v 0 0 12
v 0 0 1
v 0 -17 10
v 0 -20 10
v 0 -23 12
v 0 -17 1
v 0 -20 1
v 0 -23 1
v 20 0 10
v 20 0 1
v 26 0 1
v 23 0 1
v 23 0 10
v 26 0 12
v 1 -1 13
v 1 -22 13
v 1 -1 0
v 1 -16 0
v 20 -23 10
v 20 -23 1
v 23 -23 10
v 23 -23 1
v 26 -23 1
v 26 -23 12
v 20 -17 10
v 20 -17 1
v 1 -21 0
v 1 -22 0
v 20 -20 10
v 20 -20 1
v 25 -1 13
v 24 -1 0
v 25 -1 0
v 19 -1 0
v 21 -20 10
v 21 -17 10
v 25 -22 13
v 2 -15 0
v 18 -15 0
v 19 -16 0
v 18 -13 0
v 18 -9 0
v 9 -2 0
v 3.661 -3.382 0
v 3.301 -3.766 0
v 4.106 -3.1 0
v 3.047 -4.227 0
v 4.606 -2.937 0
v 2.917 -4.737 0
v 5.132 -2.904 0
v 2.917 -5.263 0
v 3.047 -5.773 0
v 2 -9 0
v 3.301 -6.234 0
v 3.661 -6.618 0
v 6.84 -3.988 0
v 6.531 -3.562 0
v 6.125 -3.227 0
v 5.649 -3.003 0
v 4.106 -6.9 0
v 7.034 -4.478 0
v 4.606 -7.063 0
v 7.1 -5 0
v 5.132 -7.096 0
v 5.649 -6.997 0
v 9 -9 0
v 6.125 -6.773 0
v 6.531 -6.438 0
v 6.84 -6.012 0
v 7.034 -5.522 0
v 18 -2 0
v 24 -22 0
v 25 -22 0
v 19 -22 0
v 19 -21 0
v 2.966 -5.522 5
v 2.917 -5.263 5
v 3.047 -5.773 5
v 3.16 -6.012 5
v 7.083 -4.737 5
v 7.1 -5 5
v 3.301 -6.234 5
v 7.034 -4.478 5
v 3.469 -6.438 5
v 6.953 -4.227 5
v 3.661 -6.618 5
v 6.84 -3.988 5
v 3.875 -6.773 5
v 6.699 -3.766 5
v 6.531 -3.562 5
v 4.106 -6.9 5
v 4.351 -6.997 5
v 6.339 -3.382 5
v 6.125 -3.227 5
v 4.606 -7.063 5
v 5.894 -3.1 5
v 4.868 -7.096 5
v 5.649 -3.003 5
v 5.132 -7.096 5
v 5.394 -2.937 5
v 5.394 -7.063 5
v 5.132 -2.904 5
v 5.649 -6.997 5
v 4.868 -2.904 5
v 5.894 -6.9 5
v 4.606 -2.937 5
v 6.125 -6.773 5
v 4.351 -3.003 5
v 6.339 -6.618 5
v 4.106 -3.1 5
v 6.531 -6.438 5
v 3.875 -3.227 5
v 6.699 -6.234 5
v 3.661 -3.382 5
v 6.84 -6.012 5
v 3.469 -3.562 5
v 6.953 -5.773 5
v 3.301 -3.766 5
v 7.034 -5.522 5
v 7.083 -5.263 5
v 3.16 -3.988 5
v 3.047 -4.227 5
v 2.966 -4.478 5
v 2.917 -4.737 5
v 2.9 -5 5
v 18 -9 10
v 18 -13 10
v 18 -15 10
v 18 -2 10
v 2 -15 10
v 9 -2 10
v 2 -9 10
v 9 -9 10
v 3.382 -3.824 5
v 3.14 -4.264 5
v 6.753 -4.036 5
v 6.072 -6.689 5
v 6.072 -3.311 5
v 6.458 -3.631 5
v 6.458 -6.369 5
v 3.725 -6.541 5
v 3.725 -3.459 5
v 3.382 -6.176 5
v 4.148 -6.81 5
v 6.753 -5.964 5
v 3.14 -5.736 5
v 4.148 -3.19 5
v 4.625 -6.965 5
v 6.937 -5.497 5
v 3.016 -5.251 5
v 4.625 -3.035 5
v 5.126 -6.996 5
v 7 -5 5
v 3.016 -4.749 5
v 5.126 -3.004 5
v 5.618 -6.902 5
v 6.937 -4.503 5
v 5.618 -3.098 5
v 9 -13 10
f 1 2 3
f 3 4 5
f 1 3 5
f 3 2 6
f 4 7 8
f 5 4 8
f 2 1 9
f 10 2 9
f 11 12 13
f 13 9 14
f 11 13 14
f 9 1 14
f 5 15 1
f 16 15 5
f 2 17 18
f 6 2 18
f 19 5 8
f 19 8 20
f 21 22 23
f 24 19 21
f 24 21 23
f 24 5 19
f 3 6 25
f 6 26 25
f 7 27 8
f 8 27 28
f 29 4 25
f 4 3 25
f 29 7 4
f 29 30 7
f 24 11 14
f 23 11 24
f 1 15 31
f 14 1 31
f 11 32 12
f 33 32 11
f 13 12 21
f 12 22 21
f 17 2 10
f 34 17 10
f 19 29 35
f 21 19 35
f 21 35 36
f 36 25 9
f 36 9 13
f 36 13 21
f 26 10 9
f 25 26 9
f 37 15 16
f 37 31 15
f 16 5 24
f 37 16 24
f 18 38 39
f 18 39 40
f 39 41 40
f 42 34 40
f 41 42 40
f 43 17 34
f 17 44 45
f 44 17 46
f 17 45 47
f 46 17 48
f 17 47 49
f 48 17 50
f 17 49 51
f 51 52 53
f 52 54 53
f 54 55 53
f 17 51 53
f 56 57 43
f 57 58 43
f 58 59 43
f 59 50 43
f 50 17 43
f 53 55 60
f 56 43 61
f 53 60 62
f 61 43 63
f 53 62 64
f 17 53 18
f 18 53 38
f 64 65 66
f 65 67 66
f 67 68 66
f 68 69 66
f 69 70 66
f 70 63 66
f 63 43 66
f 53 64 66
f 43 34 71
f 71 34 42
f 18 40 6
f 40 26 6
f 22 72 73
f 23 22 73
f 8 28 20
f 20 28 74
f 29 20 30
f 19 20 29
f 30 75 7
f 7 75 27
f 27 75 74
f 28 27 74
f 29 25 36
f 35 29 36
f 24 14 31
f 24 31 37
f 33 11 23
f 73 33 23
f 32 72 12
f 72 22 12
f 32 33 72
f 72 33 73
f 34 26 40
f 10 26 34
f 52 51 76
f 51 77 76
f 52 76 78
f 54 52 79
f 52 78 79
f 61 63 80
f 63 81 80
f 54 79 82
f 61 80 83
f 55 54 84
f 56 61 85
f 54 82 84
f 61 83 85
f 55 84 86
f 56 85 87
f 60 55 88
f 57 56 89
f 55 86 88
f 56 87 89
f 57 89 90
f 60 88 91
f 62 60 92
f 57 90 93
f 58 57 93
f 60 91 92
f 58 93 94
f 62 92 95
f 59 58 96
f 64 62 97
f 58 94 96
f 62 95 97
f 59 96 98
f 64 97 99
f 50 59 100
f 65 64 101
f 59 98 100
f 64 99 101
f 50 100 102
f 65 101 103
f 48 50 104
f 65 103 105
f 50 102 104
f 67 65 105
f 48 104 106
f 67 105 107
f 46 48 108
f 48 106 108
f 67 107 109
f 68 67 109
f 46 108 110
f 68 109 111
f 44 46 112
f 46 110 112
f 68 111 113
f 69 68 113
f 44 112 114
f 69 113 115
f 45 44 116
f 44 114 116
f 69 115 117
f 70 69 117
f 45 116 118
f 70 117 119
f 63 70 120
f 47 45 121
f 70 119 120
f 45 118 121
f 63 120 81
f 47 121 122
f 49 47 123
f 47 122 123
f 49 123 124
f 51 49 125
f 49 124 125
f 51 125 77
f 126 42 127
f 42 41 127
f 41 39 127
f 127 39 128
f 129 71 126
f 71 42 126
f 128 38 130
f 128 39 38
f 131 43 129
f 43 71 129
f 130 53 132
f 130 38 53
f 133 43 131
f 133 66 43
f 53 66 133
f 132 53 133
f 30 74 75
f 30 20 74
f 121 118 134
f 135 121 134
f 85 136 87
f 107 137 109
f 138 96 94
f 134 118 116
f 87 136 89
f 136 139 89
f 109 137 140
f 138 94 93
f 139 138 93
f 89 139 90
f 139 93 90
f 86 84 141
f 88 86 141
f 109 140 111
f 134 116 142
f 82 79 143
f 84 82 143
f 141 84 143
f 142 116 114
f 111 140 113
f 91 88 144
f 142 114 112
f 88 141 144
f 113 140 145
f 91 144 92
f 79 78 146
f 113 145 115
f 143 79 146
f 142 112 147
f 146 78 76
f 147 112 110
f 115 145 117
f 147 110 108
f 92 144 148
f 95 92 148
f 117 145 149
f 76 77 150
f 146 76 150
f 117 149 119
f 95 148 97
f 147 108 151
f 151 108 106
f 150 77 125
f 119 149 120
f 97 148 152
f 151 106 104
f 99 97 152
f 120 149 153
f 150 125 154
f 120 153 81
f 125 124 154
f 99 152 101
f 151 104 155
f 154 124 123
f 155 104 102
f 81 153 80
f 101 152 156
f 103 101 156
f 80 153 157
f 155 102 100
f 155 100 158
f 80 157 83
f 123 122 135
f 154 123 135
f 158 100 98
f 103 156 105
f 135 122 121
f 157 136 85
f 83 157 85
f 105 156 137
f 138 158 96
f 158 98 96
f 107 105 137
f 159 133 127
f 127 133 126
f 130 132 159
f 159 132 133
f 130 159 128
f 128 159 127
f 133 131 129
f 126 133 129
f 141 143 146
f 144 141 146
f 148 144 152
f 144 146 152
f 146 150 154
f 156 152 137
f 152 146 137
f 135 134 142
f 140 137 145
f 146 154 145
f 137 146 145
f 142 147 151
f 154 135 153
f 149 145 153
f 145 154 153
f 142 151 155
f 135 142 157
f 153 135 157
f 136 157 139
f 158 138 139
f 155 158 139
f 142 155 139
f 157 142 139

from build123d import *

# Parameters (mm, degrees)
CYLINDER001_R     = 2.1
CYLINDER001_DEPTH = 10
BOX004_W          = 16
BOX004_H          = 6
BOX004_DEPTH      = 11
BOX003_W          = 9
BOX003_H          = 11
BOX003_DEPTH      = 11
BOX002_W          = 22
BOX002_H          = 3
BOX002_DEPTH      = 11
BOX001_W          = 3
BOX001_H          = 25
BOX001_DEPTH      = 11
CYLINDER_R        = 2
CYLINDER_DEPTH    = 10
BOX_W             = 26
BOX_H             = 13
BOX_DEPTH         = 23
BOX_ROLL_ANGLE    = 90
CHAMFER_SIZE      = 1
CHAMFER001_SIZE   = 1
CHAMFER002_SIZE   = 1


with BuildPart() as cylinder001:
    # Cylinder001 → Cylinder001 (new body)
    with BuildSketch(Plane(origin=(5, -5, -5), x_dir=(1, 0, 0), z_dir=(0, 0, 1))):
        Circle(CYLINDER001_R)
    extrude(amount=CYLINDER001_DEPTH)


with BuildPart() as cube004:
    # Box004 → Box004 (new body)
    with BuildSketch(Plane(origin=(2, -15, -1), x_dir=(1, 0, 0), z_dir=(0, 0, 1))):
        with Locations((8, 3)):
            Rectangle(BOX004_W, BOX004_H)
    extrude(amount=BOX004_DEPTH)


with BuildPart() as cube003:
    # Box003 → Box003 (new body)
    with BuildSketch(Plane(origin=(9, -13, -1), x_dir=(1, 0, 0), z_dir=(0, 0, 1))):
        with Locations((4.5, 5.5)):
            Rectangle(BOX003_W, BOX003_H)
    extrude(amount=BOX003_DEPTH)


with BuildPart() as cube002:
    # Box002 → Box002 (new body)
    with BuildSketch(Plane(origin=(-1, -20, -1), x_dir=(1, 0, 0), z_dir=(0, 0, 1))):
        with Locations((11, 1.5)):
            Rectangle(BOX002_W, BOX002_H)
    extrude(amount=BOX002_DEPTH)


with BuildPart() as cube001:
    # Box001 → Box001 (new body)
    with BuildSketch(Plane(origin=(20, -24, -1), x_dir=(1, 0, 0), z_dir=(0, 0, 1))):
        with Locations((1.5, 12.5)):
            Rectangle(BOX001_W, BOX001_H)
    extrude(amount=BOX001_DEPTH)


with BuildPart() as cylinder:
    # Cylinder → Cylinder (new body)
    with BuildSketch(Plane(origin=(5, -5, -5), x_dir=(1, 0, 0), z_dir=(0, 0, 1))):
        Circle(CYLINDER_R)
    extrude(amount=CYLINDER_DEPTH)


with BuildPart() as cut005:
    # Box → Box (new body)
    with BuildSketch(Plane.XY):
        with Locations((13, 6.5)):
            Rectangle(BOX_W, BOX_H)
    extrude(amount=BOX_DEPTH)


with BuildPart() as cut005_1:
    # Box roll: moved
    add(cut005.part.rotate(Axis((0, 0, 0), (1, 0, 0)), BOX_ROLL_ANGLE))


with BuildPart() as cut005_2:
    # Box placement: moved
    add(cut005_1.part)

    # Cut: cut Cylinder
    add(cylinder.part, mode=Mode.SUBTRACT)

    # Cut001: cut Cube001
    add(cube001.part, mode=Mode.SUBTRACT)

    # Cut002: cut Cube002
    add(cube002.part, mode=Mode.SUBTRACT)

    # Cut003: cut Cube003
    add(cube003.part, mode=Mode.SUBTRACT)

    # Cut004: cut Cube004
    add(cube004.part, mode=Mode.SUBTRACT)

    # Chamfer
    chamfer_edges = [cut005_2.edges().sort_by_distance(p)[0] for p in [
        (20, -8.5, 0),
        (10, -17, 0),
        (10, -20, 0),
        (20, -21.5, 0),
        (23, -11.5, 0),
    ]]
    chamfer(chamfer_edges, length=CHAMFER_SIZE)

    # Chamfer001
    chamfer001_edges = [cut005_2.edges().sort_by_distance(p)[0] for p in [
        (0, -8, 0),
        (0, -22, 0),
        (9.5, 0, 0),
        (25, 0, 0),
        (25, -23, 0),
        (9.5, -23, 0),
        (26, -11.5, 0),
    ]]
    chamfer(chamfer001_edges, length=CHAMFER001_SIZE)

    # Chamfer002
    chamfer002_edges = [cut005_2.edges().sort_by_distance(p)[0] for p in [
        (0, -11.5, 13),
        (13, 0, 13),
        (26, -11.5, 13),
        (13, -23, 13),
    ]]
    chamfer(chamfer002_edges, length=CHAMFER002_SIZE)

    # Cut005: cut Cylinder001
    add(cylinder001.part, mode=Mode.SUBTRACT)


solid = cut005_2.part
